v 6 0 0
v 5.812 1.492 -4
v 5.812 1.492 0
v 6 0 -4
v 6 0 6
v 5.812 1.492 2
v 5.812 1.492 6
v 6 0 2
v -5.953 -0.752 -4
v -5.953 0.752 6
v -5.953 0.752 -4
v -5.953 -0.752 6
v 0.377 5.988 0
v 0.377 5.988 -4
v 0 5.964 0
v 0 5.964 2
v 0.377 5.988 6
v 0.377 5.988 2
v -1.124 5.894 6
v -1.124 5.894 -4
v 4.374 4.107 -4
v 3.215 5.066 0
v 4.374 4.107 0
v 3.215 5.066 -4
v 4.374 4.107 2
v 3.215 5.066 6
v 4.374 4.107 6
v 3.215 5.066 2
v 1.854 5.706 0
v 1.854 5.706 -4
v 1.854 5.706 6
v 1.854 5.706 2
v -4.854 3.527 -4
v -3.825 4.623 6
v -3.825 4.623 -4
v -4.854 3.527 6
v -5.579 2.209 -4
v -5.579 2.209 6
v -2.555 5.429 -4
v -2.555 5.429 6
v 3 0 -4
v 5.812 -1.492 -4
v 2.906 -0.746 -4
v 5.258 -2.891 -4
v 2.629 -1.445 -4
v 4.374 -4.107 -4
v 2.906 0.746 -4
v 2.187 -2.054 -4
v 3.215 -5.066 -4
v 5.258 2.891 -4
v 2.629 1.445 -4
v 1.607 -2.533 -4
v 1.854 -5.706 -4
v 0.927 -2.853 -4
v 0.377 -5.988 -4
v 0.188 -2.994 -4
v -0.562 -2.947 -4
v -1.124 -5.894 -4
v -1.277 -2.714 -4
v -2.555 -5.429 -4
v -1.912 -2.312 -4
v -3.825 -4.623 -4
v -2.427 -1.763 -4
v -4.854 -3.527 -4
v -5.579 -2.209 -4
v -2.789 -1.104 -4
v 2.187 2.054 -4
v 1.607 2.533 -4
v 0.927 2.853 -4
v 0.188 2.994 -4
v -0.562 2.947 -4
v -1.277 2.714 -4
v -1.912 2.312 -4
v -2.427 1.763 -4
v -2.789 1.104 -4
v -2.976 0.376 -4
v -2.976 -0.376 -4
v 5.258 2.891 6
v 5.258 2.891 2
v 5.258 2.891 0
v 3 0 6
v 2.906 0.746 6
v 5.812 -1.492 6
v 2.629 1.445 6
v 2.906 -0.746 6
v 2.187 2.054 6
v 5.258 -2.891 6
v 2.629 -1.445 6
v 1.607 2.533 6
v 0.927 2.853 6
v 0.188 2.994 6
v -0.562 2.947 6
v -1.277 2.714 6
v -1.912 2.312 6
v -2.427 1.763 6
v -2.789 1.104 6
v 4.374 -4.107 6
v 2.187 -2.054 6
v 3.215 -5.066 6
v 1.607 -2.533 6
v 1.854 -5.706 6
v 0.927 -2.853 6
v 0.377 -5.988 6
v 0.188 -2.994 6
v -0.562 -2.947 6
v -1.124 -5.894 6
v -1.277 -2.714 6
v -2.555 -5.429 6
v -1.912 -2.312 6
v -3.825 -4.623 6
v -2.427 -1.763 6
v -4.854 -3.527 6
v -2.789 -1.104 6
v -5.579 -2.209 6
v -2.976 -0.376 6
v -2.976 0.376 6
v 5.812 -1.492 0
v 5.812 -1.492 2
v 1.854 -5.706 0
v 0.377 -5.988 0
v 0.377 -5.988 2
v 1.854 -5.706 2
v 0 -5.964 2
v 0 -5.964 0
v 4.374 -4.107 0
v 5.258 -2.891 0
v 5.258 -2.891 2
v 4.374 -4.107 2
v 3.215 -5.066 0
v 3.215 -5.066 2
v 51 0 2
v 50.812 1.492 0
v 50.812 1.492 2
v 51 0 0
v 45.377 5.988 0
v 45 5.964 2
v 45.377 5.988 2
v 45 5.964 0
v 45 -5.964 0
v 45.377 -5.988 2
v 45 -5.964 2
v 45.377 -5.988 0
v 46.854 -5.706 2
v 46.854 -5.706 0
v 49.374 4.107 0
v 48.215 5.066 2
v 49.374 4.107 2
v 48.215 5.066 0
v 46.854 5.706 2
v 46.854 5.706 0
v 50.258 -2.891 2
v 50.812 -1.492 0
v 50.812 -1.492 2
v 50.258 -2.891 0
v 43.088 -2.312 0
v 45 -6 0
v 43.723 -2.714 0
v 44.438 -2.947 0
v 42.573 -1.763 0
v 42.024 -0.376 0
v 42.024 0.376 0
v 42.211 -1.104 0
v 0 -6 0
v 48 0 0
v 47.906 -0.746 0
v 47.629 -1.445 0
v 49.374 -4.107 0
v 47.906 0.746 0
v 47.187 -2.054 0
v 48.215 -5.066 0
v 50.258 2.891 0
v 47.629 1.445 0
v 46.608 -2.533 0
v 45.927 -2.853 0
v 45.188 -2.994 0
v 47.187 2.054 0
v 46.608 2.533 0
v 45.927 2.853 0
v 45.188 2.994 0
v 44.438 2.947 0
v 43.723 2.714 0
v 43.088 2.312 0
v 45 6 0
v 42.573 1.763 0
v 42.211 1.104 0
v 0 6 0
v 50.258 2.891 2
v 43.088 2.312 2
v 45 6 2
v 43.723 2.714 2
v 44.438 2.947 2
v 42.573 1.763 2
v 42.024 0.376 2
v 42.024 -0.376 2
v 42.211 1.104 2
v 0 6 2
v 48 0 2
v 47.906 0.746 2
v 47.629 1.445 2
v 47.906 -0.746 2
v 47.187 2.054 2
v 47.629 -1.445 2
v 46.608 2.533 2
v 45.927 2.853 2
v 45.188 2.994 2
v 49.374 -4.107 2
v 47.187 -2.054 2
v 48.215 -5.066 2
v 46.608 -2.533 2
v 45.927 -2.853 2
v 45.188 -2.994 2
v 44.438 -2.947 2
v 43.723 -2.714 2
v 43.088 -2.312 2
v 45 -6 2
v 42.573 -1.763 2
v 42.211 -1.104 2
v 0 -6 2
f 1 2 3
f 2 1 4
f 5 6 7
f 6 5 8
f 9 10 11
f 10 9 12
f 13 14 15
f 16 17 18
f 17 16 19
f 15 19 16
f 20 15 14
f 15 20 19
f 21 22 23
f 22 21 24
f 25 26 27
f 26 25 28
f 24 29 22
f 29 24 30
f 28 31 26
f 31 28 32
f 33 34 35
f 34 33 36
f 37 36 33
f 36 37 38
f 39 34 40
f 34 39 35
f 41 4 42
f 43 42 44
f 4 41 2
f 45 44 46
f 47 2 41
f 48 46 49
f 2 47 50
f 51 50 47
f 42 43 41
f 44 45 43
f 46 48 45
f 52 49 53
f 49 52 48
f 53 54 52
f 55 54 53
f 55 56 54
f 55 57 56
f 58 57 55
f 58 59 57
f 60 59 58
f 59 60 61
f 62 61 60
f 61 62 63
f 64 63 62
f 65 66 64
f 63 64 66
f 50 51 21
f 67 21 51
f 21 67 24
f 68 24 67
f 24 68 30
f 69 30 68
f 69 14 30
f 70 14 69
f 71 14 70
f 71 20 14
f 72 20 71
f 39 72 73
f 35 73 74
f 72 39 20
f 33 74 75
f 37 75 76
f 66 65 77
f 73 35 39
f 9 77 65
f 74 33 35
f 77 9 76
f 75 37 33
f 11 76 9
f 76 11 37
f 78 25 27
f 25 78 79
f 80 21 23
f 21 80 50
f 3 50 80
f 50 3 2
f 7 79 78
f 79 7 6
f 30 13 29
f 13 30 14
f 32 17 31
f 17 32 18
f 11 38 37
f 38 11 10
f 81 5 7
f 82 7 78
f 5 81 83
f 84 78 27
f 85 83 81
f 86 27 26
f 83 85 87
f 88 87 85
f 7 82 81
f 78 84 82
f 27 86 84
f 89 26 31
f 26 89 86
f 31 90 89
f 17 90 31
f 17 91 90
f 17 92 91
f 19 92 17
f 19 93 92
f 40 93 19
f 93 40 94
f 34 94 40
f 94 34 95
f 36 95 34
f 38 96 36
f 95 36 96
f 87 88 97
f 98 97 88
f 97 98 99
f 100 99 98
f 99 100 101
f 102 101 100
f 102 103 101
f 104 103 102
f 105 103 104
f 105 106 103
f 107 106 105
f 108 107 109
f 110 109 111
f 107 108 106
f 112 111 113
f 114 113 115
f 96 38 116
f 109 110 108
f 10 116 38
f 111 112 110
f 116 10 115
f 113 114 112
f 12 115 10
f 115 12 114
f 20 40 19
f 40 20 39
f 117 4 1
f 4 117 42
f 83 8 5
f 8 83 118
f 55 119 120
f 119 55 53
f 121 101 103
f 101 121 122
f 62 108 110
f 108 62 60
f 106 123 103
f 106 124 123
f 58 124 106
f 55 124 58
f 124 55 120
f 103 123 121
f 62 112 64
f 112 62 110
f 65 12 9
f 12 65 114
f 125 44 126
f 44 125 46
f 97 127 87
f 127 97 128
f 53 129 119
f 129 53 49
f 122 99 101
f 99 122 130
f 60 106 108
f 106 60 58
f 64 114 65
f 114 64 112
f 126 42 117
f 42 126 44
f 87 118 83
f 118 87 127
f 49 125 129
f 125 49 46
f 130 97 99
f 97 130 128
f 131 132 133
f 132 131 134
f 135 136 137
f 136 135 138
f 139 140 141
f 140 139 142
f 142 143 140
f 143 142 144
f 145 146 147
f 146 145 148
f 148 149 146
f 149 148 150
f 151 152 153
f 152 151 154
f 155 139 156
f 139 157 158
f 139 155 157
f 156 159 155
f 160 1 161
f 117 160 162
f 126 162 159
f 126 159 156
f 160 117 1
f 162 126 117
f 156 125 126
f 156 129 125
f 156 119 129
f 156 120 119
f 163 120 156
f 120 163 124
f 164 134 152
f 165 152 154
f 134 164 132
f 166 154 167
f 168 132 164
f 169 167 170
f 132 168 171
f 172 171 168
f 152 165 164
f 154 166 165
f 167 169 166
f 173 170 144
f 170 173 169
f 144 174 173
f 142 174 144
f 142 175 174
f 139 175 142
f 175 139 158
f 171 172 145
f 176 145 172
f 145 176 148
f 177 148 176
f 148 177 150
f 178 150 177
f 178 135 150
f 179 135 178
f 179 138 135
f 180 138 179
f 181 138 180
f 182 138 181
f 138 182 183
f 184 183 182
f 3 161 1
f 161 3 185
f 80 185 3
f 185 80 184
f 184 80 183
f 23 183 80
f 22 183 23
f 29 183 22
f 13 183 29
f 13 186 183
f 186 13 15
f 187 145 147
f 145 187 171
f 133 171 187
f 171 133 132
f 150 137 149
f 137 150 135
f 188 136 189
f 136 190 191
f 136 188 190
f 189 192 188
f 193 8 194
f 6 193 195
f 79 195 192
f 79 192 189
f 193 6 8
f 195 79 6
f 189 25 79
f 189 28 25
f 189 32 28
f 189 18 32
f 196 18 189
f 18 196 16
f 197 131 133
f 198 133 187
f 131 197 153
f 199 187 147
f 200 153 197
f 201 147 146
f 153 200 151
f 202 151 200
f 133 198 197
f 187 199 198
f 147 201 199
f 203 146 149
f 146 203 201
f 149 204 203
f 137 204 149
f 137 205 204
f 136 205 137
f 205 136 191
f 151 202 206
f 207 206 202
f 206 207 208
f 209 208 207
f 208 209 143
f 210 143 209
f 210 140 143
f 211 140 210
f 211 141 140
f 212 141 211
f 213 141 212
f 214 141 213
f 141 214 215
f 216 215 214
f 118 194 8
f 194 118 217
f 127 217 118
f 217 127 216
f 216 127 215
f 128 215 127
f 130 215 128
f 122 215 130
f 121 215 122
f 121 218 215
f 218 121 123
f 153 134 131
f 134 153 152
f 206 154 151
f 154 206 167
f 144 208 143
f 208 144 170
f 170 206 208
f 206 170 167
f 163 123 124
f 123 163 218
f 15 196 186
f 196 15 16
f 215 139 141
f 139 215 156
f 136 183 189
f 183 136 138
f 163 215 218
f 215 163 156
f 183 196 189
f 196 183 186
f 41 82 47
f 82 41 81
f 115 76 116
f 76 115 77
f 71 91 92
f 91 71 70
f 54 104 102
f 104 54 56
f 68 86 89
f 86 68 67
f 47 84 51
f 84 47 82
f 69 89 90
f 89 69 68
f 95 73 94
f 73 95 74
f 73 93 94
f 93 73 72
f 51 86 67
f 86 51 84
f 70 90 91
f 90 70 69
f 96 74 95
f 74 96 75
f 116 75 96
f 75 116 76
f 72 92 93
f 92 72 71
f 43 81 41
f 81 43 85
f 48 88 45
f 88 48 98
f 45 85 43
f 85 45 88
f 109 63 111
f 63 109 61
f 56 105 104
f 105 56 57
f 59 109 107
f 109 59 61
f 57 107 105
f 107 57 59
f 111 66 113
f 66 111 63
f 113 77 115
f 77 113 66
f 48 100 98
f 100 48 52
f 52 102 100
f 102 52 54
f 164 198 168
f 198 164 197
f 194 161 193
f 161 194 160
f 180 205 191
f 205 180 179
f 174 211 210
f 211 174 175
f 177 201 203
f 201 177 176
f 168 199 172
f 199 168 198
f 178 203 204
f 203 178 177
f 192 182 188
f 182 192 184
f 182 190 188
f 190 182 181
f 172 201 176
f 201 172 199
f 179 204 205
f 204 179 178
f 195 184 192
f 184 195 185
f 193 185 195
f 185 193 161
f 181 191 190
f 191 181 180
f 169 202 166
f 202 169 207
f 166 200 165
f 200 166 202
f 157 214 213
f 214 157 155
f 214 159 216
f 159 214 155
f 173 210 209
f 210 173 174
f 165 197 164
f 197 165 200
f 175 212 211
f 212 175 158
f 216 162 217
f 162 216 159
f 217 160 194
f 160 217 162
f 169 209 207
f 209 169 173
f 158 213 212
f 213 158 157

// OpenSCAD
quality=25;

pin_socket=3;

backing_thickness=2;       //Defines the thickness of the part
bit_distance=45;            //Defines distance between the two holes

front_thickness=5;   //increases the thickness of the different ends of the part
back_thickness=1;   //both of these are multiplied by backing_thickness

//TODO: should probably use a computed variable instead of doing X_thickness*backing_thickness over and over again

//backing
difference(){
    union(){
        translate([0,0,-front_thickness+backing_thickness/2]) cylinder(r=pin_socket*2,h=backing_thickness*front_thickness,$fn=quality);
        translate([bit_distance,0,-back_thickness+backing_thickness/2]) cylinder(r=pin_socket*2,h=backing_thickness*back_thickness,$fn=quality);
        translate([0,-pin_socket*2,0]) cube([bit_distance,pin_socket*4,backing_thickness]);  
    }
    union(){
        translate([0,0,-front_thickness+backing_thickness/2]) cylinder(r=pin_socket,h=backing_thickness*front_thickness,$fn=quality);
        translate([bit_distance,0,-back_thickness+backing_thickness/2]) cylinder(r=pin_socket,h=backing_thickness*back_thickness,$fn=quality);
    }
}
